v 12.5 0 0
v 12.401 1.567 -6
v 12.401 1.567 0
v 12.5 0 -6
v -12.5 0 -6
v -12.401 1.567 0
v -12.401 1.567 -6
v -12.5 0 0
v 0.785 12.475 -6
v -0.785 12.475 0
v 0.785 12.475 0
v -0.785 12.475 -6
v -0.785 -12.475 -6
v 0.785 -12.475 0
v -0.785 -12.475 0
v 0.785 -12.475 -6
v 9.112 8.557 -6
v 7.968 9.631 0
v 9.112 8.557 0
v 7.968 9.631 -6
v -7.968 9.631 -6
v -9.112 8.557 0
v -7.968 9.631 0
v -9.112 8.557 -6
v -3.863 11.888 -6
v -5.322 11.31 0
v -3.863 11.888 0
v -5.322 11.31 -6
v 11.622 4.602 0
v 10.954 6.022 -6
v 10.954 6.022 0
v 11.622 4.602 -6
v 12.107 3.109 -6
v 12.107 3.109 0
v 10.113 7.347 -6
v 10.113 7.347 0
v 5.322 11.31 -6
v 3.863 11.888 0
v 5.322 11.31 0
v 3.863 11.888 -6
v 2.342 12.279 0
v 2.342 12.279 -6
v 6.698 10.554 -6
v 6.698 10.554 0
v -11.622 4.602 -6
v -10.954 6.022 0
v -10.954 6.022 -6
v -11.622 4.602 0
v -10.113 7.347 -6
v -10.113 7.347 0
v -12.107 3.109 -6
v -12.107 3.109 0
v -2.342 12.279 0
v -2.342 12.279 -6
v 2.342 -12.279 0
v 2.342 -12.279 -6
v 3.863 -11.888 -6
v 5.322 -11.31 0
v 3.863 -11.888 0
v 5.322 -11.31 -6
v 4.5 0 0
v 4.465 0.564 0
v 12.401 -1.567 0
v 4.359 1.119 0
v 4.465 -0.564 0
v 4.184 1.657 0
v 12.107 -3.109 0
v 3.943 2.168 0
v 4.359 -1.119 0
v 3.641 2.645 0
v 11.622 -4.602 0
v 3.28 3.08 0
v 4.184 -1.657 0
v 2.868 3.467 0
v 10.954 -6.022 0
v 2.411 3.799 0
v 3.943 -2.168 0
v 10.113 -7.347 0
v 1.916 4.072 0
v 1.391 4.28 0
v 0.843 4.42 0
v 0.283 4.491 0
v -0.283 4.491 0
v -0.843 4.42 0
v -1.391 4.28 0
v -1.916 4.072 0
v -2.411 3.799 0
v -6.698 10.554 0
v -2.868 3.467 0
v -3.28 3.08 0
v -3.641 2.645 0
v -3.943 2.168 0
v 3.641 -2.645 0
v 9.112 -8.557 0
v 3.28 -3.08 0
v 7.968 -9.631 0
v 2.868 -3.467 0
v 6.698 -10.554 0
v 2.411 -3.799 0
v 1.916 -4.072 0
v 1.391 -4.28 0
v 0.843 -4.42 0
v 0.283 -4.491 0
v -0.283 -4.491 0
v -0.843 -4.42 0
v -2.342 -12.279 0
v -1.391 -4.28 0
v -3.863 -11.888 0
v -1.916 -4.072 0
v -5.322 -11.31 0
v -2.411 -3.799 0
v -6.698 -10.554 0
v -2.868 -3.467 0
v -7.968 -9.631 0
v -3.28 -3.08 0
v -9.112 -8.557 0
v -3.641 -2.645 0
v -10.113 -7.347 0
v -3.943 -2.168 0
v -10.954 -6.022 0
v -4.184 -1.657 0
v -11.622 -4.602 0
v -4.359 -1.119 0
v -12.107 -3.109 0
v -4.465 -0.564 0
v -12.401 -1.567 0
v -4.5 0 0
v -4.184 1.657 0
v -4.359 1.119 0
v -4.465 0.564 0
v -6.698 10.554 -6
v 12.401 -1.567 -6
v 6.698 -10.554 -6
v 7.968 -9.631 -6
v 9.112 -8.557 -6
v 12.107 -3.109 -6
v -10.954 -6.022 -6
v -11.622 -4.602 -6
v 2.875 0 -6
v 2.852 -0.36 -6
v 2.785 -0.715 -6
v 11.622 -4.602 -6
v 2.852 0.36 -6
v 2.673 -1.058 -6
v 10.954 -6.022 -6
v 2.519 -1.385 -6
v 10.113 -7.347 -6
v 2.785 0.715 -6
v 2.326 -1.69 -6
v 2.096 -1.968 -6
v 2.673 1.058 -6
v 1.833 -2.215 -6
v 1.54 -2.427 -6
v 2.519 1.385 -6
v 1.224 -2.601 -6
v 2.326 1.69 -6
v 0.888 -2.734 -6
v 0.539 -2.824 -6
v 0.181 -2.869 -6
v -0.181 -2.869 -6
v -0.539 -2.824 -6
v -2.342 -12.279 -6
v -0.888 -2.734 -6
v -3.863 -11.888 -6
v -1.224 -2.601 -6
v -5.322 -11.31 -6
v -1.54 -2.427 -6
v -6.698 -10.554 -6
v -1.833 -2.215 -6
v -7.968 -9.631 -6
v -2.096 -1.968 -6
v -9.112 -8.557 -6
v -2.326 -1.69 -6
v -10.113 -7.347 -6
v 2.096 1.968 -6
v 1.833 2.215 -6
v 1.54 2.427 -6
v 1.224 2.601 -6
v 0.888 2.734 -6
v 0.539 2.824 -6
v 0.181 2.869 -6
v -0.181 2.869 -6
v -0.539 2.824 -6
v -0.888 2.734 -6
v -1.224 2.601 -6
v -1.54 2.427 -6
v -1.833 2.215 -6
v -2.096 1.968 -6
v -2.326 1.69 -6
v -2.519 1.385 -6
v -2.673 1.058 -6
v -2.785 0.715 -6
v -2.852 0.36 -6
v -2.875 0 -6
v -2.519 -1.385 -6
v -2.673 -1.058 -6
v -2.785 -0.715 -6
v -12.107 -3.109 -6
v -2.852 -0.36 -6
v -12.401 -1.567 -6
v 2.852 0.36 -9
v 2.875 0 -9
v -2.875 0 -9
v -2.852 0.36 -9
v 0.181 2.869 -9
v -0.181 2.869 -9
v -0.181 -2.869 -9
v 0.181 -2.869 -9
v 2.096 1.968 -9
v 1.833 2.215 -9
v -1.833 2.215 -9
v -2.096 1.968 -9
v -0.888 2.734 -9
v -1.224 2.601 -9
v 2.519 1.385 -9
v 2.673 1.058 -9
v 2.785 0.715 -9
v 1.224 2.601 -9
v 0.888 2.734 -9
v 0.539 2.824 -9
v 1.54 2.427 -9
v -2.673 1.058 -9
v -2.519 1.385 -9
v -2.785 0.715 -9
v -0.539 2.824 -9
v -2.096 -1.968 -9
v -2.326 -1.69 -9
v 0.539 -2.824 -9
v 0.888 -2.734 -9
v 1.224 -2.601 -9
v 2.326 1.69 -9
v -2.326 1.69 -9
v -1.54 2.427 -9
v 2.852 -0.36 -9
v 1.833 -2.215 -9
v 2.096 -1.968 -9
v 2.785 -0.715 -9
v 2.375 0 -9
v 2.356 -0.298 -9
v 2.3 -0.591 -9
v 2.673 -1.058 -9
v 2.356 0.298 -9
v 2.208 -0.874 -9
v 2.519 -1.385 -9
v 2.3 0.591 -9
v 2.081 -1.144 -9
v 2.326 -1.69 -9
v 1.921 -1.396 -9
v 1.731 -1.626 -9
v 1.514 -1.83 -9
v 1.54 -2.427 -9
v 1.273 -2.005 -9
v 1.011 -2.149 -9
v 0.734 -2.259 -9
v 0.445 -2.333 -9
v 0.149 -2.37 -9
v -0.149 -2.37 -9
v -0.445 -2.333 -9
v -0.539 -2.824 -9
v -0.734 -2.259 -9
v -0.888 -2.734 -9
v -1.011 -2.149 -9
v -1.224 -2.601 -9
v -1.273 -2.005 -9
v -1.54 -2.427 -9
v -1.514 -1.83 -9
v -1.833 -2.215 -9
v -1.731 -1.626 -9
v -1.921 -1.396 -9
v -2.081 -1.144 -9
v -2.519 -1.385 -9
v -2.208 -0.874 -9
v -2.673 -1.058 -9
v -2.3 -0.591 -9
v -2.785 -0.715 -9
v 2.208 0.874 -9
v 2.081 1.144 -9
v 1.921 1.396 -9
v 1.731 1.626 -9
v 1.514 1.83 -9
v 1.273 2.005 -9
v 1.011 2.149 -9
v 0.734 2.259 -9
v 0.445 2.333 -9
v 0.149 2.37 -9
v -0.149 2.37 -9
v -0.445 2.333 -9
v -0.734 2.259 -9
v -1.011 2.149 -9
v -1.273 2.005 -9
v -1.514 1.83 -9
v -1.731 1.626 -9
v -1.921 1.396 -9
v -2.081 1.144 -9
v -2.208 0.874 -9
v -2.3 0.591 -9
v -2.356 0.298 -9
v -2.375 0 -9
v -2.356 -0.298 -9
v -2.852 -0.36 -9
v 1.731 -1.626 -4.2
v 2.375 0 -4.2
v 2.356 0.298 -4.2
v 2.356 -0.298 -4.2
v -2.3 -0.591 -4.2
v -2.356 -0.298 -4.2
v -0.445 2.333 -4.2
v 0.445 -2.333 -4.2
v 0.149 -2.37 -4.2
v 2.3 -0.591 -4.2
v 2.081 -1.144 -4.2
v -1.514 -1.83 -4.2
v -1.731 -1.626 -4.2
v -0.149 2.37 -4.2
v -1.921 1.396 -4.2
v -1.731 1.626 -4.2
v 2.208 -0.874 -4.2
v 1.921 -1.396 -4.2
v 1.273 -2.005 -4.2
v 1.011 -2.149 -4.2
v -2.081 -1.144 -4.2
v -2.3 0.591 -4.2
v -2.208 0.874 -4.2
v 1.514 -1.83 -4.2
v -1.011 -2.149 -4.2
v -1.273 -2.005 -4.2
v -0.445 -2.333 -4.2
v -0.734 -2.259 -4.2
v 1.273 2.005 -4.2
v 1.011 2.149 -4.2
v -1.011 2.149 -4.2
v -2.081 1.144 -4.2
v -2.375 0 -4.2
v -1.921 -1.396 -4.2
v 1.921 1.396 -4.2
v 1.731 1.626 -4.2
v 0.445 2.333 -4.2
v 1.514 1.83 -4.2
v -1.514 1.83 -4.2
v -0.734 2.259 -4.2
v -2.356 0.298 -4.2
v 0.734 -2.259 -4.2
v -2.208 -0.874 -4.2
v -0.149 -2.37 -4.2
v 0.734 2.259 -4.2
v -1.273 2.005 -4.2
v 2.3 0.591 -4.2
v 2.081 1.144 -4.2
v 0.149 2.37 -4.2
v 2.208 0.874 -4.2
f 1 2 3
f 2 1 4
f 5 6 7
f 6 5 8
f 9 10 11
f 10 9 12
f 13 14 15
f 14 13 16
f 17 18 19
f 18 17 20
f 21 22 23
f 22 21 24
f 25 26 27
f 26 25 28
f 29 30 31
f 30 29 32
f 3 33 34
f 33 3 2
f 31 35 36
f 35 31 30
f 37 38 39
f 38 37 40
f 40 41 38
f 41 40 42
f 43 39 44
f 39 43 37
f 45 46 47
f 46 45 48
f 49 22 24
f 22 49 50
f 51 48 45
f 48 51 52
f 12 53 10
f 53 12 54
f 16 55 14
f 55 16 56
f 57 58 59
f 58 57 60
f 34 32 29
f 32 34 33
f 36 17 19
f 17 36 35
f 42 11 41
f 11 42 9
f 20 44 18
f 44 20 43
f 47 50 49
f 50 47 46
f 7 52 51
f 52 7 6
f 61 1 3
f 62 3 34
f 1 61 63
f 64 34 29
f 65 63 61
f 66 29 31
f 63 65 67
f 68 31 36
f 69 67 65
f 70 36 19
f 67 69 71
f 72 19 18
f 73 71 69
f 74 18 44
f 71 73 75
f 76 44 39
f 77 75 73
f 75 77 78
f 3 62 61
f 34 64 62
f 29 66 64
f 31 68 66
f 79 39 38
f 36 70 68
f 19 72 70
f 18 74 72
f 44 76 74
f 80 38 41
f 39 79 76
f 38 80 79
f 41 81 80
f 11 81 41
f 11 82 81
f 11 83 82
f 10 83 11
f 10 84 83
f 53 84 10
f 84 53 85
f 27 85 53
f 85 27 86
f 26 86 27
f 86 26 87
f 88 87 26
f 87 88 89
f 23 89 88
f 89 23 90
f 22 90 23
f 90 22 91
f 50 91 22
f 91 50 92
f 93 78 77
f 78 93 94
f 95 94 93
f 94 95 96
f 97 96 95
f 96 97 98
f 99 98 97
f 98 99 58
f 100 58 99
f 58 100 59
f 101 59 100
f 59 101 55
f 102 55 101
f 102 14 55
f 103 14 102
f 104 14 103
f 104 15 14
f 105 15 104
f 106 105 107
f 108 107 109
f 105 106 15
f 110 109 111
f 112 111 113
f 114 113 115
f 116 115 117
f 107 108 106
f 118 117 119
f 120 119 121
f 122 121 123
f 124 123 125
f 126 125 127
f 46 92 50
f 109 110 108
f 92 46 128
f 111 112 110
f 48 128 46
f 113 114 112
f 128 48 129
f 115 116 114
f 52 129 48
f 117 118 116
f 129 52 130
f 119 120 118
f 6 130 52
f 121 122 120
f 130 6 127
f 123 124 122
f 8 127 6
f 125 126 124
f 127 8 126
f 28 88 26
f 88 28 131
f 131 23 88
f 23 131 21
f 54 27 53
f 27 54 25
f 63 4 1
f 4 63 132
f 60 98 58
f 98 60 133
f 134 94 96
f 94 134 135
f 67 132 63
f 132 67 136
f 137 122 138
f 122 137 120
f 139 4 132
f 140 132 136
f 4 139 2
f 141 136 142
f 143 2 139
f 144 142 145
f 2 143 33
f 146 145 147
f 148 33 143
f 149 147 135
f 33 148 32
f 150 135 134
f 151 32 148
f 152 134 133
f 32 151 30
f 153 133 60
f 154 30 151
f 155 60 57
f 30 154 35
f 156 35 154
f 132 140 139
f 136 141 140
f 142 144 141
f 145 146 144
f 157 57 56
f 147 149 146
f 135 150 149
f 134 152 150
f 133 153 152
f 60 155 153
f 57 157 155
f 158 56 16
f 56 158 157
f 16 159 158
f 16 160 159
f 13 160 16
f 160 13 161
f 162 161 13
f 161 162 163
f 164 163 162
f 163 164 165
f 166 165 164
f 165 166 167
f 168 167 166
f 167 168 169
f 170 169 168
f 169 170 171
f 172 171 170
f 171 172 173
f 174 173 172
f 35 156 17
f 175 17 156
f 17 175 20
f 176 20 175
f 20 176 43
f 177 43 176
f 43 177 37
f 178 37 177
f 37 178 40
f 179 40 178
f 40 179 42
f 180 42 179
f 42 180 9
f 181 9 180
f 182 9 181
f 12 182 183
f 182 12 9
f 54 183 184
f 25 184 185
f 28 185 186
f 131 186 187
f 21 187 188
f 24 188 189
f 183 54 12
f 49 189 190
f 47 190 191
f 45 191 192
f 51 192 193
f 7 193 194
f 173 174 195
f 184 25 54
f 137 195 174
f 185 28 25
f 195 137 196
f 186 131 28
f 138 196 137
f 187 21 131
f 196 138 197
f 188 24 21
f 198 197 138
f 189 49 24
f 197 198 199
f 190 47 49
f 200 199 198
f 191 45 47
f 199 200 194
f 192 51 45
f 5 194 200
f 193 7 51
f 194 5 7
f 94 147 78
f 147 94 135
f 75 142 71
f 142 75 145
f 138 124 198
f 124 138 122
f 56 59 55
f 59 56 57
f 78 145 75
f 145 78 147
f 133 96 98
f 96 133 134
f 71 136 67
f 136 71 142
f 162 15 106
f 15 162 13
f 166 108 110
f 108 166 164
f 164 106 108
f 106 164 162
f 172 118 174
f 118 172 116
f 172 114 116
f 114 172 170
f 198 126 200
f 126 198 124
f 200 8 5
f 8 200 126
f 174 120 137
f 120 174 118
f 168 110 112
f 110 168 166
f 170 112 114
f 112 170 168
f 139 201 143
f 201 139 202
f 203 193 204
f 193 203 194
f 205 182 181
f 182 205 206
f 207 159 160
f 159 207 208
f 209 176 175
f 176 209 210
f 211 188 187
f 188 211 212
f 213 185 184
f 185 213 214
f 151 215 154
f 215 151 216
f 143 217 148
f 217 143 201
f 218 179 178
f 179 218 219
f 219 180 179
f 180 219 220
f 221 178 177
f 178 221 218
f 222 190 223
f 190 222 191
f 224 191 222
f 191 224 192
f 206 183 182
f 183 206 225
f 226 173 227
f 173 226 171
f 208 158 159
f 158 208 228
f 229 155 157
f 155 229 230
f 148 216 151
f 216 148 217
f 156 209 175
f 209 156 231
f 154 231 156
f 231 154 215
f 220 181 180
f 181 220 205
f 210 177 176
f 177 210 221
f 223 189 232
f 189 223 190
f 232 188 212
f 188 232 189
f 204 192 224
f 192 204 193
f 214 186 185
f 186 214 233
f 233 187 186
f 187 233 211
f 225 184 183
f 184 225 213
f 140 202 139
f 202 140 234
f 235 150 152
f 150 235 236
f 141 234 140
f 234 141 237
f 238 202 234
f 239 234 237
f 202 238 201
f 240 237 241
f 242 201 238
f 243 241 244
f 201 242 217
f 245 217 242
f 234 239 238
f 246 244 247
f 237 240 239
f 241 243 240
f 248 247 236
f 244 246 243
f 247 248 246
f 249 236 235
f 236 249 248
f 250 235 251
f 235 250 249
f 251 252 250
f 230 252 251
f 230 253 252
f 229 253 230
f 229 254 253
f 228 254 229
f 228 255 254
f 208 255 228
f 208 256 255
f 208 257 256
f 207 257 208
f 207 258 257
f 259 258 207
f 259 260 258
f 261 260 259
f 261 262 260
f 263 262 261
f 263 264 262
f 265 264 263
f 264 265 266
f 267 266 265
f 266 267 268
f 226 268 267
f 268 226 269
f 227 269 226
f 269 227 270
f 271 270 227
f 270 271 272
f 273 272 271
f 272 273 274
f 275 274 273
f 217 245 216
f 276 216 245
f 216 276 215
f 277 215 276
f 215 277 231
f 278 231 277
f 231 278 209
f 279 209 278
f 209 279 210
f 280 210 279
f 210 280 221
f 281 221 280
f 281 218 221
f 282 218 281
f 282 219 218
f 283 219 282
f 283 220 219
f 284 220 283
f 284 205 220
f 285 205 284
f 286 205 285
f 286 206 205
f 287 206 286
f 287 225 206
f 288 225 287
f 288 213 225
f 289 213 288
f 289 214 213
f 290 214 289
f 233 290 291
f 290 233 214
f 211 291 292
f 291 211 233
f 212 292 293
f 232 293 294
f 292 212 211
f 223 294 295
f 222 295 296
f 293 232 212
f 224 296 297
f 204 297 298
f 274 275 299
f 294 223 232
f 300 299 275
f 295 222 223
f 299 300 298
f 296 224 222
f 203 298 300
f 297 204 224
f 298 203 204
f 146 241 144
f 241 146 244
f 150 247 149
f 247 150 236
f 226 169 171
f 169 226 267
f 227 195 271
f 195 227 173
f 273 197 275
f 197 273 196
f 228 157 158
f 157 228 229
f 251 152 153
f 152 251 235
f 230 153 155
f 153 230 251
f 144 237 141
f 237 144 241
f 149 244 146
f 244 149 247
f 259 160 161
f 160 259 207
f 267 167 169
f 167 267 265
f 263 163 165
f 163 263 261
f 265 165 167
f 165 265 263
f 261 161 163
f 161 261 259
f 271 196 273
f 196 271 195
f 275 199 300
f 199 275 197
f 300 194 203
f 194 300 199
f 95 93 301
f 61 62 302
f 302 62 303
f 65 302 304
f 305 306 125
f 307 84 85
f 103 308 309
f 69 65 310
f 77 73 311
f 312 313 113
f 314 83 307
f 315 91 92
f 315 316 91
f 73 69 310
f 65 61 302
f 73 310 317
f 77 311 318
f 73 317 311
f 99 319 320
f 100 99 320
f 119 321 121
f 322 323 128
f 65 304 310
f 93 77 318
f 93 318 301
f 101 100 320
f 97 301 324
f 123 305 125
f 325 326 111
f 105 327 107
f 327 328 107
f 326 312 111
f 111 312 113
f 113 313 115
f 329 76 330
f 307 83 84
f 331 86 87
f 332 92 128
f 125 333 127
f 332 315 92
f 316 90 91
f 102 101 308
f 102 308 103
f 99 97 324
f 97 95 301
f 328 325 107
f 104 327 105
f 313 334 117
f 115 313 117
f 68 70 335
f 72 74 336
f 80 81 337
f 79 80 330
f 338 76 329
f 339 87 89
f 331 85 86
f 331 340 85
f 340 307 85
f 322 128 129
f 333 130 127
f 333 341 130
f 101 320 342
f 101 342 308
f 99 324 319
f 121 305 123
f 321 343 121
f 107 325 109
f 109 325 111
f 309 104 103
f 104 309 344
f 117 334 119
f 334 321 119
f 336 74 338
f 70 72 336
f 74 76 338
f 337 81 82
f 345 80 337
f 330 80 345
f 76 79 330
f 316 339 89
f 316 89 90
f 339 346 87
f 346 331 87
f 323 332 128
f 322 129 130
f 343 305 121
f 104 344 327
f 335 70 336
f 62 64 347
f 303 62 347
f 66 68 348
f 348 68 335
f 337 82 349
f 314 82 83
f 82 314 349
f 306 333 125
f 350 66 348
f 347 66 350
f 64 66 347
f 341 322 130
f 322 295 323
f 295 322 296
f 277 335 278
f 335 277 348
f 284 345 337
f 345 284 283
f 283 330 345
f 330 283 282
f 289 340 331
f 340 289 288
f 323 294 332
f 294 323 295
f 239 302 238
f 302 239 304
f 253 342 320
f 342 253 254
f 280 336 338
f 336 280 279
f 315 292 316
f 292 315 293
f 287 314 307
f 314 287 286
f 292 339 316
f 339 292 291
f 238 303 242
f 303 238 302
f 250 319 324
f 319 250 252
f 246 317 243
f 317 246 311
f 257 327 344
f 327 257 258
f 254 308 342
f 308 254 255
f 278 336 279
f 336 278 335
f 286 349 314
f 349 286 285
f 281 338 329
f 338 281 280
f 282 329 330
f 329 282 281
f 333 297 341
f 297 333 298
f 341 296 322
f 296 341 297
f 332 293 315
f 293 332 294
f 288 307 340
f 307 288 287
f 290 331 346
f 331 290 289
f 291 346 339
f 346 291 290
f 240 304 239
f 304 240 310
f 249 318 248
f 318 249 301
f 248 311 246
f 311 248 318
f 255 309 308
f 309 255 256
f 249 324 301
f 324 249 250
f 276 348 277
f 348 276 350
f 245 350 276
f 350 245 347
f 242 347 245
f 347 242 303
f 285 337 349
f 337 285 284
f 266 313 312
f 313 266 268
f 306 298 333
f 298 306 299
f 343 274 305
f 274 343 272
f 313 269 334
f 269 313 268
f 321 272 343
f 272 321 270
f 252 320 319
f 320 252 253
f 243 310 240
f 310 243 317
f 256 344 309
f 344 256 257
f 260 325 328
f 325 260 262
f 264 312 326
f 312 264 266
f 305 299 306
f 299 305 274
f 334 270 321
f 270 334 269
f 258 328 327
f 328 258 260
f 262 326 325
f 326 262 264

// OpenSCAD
$fn = 50;

difference() {
	union() {
		translate(v = [0, 0, -6.0]) {
			cylinder(h = 6, r = 12.5);
		}
		#translate(v = [0, 0, -9.0]) {
			cylinder(h = 9, r = 2.875);
		}
	}
	union() {
		translate(v = [0, 0, 0]) {
			rotate(a = [0, 0, 0]) {
				difference() {
					union() {
						translate(v = [0, 0, -9.0]) {
							cylinder(h = 9, r = 2.25);
						}
						translate(v = [0, 0, -4.2]) {
							cylinder(h = 4.2, r1 = 2.375, r2 = 4.5);
						}
						translate(v = [0, 0, -9.0]) {
							cylinder(h = 9, r = 2.375);
						}
						translate(v = [0, 0, -9.0]) {
							cylinder(h = 9, r = 2.25);
						}
					}
					union();
				}
			}
		}
	}
}
